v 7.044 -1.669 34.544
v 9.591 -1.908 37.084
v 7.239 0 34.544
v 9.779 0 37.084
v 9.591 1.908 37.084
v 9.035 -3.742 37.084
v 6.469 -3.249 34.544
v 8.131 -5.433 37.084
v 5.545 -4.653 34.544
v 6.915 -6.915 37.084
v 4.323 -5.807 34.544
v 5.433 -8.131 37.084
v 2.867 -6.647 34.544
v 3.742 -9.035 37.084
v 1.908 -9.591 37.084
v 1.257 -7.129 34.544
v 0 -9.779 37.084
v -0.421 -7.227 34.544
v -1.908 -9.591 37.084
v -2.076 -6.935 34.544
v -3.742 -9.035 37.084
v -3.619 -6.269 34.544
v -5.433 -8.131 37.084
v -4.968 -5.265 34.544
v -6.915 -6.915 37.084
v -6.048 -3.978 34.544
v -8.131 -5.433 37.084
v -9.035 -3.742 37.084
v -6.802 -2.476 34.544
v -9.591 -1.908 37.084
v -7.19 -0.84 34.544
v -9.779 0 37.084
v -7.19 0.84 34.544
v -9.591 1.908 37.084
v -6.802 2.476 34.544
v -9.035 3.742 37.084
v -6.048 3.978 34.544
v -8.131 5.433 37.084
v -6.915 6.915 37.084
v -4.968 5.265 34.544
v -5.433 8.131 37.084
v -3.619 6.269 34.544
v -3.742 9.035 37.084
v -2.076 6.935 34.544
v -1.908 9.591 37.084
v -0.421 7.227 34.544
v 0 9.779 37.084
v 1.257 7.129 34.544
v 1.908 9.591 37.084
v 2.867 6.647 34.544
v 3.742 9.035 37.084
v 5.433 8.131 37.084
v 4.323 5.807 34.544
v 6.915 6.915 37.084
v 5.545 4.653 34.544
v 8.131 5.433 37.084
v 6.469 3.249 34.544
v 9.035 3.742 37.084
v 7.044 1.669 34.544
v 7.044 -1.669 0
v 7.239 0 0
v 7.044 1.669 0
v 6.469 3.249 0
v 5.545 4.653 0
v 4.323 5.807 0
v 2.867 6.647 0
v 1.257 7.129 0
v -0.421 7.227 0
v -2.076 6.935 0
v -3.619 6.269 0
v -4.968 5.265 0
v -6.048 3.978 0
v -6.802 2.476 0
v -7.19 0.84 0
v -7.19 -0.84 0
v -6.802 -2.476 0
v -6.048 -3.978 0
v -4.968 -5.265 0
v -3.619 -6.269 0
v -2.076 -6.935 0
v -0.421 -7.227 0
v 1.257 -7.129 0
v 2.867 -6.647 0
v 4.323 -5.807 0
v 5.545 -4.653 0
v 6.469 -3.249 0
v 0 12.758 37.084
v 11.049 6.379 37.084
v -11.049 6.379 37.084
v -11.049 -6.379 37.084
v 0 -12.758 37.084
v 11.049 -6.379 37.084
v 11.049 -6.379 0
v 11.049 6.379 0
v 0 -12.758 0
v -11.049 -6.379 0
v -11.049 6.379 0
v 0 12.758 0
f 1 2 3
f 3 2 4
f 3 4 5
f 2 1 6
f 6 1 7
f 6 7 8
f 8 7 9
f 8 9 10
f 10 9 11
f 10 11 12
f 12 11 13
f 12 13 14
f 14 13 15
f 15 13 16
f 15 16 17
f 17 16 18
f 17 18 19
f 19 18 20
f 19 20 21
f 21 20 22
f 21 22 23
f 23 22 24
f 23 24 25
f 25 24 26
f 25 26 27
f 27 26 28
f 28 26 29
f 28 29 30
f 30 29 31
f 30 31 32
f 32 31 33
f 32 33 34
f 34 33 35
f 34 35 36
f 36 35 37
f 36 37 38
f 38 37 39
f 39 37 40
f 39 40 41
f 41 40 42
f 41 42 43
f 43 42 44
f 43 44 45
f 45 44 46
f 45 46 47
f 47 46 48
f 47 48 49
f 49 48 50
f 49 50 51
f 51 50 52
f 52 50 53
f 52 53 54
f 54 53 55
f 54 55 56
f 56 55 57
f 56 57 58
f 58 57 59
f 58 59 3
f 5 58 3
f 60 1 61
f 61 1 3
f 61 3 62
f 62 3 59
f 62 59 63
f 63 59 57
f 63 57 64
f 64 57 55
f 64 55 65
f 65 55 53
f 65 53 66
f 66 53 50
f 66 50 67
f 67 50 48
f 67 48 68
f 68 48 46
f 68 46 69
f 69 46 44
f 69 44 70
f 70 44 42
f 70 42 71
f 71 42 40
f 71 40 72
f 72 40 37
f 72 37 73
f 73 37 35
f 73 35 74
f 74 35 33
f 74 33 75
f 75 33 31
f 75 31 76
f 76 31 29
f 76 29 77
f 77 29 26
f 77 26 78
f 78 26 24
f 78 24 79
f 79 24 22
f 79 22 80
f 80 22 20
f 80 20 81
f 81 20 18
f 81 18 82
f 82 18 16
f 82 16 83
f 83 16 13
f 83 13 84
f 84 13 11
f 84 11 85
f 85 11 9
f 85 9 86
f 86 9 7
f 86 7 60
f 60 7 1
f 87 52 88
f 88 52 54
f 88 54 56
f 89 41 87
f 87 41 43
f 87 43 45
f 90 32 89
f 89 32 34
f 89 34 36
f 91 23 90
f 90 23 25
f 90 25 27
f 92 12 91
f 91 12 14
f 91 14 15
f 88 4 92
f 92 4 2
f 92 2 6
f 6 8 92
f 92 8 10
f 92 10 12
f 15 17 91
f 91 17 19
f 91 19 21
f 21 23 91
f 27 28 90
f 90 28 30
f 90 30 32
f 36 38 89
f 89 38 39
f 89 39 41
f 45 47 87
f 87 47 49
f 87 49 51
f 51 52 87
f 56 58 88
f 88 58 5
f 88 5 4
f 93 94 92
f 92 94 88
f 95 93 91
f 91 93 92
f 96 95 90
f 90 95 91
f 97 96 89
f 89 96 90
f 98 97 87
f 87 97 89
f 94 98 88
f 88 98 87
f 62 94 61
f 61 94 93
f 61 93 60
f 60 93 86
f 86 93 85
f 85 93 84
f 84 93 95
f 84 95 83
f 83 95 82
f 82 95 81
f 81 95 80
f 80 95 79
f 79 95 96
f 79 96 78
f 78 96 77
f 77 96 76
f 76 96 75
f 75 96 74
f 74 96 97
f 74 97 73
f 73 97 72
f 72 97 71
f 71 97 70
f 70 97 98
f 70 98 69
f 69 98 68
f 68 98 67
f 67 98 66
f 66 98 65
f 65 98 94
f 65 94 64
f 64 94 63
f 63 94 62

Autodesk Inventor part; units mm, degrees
ref_plane "YZ Plane" through (0, 0, 0) normal (1, 0, 0) x (0, 1, 0)
ref_plane "XZ Plane" through (0, 0, 0) normal (0, 1, 0) x (-1, 0, 0)
ref_plane "XY Plane" through (0, 0, 0) normal (0, 0, 1) x (1, 0, 0)
sketch "Sketch1" plane through (0, 0, 0) normal (0, 0, 1) x (1, 0, 0)
  line L0 (0, 12.7583) -> (11.049, 6.3791)
  line L1 (11.049, 6.3791) -> (11.049, -6.3791)
  line L2 (11.049, -6.3791) -> (0, -12.7583)
  line L3 (0, -12.7583) -> (-11.049, -6.3791)
  line L4 (-11.049, -6.3791) -> (-11.049, 6.3791)
  line L5 (-11.049, 6.3791) -> (0, 12.7583)
  point P0 (0, 0)
  point P1 (0, 0)
  dimension "d0" = 22.098
extrude "Extrusion1" add sketch "Sketch1" along normal blind 37.084
sketch "Sketch2" plane through (0, 0, 37.084) normal (0, 0, 1) x (1, 0, 0)
  circle A0 centre (0, 0) radius 7.239
  dimension "d4" = 14.478
extrude "Extrusion2" cut sketch "Sketch2" against normal blind 37.084
chamfer "Chamfer1" distance 2.54 angle 45 1 edges at (-7.239, 0, 37.084)
thread "Thread1" size "1/2-13 UNC" class "2B" standard "ANSI Unified Screw Threads" full length
thread "Thread2" size "3/4" designation "3/4 - 14 NPT" standard "NPT for PVC Pipe and Fitting" full length
properties part number "inside thread"
